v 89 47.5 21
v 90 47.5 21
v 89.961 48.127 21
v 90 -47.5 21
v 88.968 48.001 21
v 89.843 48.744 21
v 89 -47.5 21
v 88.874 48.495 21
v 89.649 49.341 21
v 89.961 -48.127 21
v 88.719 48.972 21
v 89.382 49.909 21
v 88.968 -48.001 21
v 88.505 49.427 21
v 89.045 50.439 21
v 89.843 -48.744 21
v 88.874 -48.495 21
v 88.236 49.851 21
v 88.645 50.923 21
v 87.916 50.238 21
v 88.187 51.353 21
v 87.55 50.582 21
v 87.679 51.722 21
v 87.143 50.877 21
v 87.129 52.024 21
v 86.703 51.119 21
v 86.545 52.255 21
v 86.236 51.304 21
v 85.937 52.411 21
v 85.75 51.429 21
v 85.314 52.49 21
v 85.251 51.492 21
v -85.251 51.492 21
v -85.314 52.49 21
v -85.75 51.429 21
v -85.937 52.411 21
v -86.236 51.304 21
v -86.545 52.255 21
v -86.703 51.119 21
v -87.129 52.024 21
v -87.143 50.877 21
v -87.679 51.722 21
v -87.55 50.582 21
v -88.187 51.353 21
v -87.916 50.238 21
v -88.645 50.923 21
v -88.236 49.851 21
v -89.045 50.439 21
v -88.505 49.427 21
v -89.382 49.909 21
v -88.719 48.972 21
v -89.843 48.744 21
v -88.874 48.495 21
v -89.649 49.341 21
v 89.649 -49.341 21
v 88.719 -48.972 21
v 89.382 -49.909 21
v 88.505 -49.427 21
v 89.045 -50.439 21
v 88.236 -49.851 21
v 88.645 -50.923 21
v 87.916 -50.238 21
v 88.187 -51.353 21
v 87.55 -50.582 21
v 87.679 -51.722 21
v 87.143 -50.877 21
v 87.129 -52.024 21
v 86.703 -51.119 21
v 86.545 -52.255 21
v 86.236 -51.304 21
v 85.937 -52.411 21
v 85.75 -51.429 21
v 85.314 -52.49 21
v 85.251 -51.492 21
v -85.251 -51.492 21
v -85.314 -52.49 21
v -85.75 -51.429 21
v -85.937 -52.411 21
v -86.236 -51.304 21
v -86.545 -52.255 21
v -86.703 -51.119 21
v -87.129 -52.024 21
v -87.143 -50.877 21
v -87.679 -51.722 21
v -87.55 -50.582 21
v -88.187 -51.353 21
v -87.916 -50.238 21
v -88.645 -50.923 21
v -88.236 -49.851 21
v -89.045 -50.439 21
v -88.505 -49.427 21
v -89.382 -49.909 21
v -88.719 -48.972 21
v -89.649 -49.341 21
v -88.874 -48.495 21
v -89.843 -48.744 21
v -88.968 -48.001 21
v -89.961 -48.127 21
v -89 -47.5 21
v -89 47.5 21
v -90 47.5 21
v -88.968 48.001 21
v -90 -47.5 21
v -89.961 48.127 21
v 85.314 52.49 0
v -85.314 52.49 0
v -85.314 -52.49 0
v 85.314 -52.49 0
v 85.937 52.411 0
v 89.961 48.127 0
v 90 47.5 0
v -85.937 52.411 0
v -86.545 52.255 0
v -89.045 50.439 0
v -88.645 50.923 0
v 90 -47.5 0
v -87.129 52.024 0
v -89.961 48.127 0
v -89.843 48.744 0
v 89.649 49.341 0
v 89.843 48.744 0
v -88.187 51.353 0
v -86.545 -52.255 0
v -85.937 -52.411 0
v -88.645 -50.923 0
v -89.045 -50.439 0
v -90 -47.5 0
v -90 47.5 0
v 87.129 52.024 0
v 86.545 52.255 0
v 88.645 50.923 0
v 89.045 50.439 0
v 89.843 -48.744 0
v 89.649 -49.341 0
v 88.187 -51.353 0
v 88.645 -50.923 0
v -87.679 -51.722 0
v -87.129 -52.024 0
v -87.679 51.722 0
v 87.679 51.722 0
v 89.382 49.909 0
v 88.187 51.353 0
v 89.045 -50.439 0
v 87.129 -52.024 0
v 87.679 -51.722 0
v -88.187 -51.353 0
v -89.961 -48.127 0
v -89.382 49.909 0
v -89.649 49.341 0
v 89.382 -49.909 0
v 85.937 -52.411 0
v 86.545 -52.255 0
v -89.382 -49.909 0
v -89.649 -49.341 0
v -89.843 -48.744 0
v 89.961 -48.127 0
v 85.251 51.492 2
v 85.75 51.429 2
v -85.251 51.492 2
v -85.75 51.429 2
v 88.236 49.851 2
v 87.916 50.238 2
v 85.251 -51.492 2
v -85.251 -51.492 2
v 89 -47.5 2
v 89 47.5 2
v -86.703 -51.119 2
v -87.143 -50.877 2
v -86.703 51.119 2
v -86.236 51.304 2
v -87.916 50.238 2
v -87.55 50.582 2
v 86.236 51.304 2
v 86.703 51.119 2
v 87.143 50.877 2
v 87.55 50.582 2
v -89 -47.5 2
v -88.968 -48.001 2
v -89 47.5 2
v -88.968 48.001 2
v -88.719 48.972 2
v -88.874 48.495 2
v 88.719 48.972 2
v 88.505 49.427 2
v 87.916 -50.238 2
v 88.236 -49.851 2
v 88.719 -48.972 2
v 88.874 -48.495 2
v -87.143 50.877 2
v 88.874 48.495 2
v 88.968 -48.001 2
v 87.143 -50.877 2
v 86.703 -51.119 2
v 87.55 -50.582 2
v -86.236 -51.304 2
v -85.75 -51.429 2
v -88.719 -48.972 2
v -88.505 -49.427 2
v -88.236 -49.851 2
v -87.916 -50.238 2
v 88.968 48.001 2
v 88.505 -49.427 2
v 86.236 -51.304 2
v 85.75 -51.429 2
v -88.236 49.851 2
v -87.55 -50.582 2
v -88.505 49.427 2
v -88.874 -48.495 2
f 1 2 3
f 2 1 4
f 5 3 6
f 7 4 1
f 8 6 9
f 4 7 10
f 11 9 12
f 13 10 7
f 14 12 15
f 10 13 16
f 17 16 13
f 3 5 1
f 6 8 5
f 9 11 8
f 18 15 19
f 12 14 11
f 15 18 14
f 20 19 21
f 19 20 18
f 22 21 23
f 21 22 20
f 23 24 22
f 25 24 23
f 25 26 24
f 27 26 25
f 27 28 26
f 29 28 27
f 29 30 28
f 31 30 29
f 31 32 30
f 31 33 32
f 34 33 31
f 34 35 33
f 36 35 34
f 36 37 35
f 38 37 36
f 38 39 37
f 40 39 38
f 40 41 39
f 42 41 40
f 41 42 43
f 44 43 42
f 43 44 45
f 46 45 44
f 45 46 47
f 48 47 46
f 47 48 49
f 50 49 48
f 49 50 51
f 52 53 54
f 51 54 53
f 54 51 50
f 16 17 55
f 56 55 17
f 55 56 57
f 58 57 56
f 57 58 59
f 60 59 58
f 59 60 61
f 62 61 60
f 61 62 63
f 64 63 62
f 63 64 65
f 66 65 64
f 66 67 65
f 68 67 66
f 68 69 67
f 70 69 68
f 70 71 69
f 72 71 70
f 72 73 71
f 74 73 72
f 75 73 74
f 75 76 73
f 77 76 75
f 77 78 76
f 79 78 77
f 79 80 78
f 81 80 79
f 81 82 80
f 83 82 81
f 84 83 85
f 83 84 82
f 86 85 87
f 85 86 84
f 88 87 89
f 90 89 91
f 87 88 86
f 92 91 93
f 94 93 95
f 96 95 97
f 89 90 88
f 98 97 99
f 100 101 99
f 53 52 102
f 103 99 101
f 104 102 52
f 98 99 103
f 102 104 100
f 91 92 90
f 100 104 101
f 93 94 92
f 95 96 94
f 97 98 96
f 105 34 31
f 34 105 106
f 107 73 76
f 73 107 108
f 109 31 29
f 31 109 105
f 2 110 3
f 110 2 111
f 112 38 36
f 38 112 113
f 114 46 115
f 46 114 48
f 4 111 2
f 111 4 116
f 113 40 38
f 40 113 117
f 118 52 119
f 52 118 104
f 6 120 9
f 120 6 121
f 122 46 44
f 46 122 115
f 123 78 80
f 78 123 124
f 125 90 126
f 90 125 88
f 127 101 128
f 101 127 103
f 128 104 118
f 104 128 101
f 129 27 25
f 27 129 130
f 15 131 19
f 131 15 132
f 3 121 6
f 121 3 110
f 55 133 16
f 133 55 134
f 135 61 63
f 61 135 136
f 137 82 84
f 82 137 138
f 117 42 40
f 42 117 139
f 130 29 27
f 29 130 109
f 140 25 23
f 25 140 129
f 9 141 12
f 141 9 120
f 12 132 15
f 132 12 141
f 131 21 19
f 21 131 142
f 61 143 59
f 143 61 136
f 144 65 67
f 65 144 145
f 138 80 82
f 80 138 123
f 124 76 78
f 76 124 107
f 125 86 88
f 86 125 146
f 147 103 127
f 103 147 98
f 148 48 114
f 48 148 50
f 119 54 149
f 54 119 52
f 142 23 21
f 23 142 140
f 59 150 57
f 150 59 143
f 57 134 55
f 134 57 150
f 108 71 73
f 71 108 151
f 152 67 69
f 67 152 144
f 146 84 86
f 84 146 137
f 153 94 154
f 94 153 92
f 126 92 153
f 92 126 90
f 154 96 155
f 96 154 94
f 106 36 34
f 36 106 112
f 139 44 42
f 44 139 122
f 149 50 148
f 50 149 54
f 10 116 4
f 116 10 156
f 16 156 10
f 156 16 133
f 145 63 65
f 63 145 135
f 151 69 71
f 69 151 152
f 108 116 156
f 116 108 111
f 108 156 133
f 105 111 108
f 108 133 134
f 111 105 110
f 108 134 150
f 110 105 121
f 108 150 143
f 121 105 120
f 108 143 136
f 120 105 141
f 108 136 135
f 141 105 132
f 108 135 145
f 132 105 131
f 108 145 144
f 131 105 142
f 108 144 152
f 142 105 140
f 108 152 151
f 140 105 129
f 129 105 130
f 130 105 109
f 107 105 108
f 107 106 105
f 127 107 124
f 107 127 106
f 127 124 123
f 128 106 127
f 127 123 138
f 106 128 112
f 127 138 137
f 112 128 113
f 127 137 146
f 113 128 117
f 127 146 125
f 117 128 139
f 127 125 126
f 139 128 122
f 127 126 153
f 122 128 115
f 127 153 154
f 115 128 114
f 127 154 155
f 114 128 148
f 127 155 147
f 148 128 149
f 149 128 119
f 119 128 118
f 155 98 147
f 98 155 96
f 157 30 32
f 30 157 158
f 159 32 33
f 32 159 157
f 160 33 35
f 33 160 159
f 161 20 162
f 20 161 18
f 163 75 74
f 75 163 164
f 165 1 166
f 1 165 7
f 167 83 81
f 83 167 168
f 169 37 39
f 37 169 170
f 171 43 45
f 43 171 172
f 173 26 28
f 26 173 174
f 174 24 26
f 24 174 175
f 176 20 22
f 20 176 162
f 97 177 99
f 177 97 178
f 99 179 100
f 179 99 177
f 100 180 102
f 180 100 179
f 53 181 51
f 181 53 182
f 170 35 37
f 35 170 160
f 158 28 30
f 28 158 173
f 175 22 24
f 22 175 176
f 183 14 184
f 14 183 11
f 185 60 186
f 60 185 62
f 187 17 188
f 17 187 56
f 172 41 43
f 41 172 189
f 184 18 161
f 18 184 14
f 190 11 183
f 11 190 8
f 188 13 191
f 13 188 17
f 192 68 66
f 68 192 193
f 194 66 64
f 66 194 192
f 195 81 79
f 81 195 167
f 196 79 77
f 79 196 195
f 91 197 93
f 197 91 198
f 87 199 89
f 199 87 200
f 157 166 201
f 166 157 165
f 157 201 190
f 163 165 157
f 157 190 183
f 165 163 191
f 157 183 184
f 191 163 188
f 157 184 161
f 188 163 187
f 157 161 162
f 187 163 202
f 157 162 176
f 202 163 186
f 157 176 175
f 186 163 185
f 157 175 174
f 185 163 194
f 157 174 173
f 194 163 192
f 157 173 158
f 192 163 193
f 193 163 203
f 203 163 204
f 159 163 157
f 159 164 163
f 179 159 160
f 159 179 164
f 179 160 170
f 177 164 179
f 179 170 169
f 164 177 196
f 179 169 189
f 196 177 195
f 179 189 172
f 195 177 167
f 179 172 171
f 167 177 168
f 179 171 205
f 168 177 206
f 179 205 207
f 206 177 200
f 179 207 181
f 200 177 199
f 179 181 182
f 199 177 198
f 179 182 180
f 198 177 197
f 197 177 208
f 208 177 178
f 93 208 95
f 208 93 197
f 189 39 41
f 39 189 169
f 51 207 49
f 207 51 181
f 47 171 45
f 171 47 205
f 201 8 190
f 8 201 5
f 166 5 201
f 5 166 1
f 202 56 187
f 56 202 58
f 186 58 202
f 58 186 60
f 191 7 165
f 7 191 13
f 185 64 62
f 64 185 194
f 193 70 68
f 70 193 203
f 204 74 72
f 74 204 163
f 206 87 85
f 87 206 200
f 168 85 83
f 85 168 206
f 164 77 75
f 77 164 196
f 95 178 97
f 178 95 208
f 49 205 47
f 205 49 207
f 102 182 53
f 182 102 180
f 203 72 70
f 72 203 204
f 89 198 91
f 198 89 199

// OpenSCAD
$fn = 50;


difference() {
	union() {
		hull() {
			translate(v = [-85.0000000000, 47.5000000000, 0]) {
				cylinder(h = 21, r = 5);
			}
			translate(v = [85.0000000000, 47.5000000000, 0]) {
				cylinder(h = 21, r = 5);
			}
			translate(v = [-85.0000000000, -47.5000000000, 0]) {
				cylinder(h = 21, r = 5);
			}
			translate(v = [85.0000000000, -47.5000000000, 0]) {
				cylinder(h = 21, r = 5);
			}
		}
	}
	union() {
		translate(v = [0, 0, 2]) {
			hull() {
				translate(v = [-85.0000000000, 47.5000000000, 0]) {
					cylinder(h = 19, r = 4);
				}
				translate(v = [85.0000000000, 47.5000000000, 0]) {
					cylinder(h = 19, r = 4);
				}
				translate(v = [-85.0000000000, -47.5000000000, 0]) {
					cylinder(h = 19, r = 4);
				}
				translate(v = [85.0000000000, -47.5000000000, 0]) {
					cylinder(h = 19, r = 4);
				}
			}
		}
	}
}
